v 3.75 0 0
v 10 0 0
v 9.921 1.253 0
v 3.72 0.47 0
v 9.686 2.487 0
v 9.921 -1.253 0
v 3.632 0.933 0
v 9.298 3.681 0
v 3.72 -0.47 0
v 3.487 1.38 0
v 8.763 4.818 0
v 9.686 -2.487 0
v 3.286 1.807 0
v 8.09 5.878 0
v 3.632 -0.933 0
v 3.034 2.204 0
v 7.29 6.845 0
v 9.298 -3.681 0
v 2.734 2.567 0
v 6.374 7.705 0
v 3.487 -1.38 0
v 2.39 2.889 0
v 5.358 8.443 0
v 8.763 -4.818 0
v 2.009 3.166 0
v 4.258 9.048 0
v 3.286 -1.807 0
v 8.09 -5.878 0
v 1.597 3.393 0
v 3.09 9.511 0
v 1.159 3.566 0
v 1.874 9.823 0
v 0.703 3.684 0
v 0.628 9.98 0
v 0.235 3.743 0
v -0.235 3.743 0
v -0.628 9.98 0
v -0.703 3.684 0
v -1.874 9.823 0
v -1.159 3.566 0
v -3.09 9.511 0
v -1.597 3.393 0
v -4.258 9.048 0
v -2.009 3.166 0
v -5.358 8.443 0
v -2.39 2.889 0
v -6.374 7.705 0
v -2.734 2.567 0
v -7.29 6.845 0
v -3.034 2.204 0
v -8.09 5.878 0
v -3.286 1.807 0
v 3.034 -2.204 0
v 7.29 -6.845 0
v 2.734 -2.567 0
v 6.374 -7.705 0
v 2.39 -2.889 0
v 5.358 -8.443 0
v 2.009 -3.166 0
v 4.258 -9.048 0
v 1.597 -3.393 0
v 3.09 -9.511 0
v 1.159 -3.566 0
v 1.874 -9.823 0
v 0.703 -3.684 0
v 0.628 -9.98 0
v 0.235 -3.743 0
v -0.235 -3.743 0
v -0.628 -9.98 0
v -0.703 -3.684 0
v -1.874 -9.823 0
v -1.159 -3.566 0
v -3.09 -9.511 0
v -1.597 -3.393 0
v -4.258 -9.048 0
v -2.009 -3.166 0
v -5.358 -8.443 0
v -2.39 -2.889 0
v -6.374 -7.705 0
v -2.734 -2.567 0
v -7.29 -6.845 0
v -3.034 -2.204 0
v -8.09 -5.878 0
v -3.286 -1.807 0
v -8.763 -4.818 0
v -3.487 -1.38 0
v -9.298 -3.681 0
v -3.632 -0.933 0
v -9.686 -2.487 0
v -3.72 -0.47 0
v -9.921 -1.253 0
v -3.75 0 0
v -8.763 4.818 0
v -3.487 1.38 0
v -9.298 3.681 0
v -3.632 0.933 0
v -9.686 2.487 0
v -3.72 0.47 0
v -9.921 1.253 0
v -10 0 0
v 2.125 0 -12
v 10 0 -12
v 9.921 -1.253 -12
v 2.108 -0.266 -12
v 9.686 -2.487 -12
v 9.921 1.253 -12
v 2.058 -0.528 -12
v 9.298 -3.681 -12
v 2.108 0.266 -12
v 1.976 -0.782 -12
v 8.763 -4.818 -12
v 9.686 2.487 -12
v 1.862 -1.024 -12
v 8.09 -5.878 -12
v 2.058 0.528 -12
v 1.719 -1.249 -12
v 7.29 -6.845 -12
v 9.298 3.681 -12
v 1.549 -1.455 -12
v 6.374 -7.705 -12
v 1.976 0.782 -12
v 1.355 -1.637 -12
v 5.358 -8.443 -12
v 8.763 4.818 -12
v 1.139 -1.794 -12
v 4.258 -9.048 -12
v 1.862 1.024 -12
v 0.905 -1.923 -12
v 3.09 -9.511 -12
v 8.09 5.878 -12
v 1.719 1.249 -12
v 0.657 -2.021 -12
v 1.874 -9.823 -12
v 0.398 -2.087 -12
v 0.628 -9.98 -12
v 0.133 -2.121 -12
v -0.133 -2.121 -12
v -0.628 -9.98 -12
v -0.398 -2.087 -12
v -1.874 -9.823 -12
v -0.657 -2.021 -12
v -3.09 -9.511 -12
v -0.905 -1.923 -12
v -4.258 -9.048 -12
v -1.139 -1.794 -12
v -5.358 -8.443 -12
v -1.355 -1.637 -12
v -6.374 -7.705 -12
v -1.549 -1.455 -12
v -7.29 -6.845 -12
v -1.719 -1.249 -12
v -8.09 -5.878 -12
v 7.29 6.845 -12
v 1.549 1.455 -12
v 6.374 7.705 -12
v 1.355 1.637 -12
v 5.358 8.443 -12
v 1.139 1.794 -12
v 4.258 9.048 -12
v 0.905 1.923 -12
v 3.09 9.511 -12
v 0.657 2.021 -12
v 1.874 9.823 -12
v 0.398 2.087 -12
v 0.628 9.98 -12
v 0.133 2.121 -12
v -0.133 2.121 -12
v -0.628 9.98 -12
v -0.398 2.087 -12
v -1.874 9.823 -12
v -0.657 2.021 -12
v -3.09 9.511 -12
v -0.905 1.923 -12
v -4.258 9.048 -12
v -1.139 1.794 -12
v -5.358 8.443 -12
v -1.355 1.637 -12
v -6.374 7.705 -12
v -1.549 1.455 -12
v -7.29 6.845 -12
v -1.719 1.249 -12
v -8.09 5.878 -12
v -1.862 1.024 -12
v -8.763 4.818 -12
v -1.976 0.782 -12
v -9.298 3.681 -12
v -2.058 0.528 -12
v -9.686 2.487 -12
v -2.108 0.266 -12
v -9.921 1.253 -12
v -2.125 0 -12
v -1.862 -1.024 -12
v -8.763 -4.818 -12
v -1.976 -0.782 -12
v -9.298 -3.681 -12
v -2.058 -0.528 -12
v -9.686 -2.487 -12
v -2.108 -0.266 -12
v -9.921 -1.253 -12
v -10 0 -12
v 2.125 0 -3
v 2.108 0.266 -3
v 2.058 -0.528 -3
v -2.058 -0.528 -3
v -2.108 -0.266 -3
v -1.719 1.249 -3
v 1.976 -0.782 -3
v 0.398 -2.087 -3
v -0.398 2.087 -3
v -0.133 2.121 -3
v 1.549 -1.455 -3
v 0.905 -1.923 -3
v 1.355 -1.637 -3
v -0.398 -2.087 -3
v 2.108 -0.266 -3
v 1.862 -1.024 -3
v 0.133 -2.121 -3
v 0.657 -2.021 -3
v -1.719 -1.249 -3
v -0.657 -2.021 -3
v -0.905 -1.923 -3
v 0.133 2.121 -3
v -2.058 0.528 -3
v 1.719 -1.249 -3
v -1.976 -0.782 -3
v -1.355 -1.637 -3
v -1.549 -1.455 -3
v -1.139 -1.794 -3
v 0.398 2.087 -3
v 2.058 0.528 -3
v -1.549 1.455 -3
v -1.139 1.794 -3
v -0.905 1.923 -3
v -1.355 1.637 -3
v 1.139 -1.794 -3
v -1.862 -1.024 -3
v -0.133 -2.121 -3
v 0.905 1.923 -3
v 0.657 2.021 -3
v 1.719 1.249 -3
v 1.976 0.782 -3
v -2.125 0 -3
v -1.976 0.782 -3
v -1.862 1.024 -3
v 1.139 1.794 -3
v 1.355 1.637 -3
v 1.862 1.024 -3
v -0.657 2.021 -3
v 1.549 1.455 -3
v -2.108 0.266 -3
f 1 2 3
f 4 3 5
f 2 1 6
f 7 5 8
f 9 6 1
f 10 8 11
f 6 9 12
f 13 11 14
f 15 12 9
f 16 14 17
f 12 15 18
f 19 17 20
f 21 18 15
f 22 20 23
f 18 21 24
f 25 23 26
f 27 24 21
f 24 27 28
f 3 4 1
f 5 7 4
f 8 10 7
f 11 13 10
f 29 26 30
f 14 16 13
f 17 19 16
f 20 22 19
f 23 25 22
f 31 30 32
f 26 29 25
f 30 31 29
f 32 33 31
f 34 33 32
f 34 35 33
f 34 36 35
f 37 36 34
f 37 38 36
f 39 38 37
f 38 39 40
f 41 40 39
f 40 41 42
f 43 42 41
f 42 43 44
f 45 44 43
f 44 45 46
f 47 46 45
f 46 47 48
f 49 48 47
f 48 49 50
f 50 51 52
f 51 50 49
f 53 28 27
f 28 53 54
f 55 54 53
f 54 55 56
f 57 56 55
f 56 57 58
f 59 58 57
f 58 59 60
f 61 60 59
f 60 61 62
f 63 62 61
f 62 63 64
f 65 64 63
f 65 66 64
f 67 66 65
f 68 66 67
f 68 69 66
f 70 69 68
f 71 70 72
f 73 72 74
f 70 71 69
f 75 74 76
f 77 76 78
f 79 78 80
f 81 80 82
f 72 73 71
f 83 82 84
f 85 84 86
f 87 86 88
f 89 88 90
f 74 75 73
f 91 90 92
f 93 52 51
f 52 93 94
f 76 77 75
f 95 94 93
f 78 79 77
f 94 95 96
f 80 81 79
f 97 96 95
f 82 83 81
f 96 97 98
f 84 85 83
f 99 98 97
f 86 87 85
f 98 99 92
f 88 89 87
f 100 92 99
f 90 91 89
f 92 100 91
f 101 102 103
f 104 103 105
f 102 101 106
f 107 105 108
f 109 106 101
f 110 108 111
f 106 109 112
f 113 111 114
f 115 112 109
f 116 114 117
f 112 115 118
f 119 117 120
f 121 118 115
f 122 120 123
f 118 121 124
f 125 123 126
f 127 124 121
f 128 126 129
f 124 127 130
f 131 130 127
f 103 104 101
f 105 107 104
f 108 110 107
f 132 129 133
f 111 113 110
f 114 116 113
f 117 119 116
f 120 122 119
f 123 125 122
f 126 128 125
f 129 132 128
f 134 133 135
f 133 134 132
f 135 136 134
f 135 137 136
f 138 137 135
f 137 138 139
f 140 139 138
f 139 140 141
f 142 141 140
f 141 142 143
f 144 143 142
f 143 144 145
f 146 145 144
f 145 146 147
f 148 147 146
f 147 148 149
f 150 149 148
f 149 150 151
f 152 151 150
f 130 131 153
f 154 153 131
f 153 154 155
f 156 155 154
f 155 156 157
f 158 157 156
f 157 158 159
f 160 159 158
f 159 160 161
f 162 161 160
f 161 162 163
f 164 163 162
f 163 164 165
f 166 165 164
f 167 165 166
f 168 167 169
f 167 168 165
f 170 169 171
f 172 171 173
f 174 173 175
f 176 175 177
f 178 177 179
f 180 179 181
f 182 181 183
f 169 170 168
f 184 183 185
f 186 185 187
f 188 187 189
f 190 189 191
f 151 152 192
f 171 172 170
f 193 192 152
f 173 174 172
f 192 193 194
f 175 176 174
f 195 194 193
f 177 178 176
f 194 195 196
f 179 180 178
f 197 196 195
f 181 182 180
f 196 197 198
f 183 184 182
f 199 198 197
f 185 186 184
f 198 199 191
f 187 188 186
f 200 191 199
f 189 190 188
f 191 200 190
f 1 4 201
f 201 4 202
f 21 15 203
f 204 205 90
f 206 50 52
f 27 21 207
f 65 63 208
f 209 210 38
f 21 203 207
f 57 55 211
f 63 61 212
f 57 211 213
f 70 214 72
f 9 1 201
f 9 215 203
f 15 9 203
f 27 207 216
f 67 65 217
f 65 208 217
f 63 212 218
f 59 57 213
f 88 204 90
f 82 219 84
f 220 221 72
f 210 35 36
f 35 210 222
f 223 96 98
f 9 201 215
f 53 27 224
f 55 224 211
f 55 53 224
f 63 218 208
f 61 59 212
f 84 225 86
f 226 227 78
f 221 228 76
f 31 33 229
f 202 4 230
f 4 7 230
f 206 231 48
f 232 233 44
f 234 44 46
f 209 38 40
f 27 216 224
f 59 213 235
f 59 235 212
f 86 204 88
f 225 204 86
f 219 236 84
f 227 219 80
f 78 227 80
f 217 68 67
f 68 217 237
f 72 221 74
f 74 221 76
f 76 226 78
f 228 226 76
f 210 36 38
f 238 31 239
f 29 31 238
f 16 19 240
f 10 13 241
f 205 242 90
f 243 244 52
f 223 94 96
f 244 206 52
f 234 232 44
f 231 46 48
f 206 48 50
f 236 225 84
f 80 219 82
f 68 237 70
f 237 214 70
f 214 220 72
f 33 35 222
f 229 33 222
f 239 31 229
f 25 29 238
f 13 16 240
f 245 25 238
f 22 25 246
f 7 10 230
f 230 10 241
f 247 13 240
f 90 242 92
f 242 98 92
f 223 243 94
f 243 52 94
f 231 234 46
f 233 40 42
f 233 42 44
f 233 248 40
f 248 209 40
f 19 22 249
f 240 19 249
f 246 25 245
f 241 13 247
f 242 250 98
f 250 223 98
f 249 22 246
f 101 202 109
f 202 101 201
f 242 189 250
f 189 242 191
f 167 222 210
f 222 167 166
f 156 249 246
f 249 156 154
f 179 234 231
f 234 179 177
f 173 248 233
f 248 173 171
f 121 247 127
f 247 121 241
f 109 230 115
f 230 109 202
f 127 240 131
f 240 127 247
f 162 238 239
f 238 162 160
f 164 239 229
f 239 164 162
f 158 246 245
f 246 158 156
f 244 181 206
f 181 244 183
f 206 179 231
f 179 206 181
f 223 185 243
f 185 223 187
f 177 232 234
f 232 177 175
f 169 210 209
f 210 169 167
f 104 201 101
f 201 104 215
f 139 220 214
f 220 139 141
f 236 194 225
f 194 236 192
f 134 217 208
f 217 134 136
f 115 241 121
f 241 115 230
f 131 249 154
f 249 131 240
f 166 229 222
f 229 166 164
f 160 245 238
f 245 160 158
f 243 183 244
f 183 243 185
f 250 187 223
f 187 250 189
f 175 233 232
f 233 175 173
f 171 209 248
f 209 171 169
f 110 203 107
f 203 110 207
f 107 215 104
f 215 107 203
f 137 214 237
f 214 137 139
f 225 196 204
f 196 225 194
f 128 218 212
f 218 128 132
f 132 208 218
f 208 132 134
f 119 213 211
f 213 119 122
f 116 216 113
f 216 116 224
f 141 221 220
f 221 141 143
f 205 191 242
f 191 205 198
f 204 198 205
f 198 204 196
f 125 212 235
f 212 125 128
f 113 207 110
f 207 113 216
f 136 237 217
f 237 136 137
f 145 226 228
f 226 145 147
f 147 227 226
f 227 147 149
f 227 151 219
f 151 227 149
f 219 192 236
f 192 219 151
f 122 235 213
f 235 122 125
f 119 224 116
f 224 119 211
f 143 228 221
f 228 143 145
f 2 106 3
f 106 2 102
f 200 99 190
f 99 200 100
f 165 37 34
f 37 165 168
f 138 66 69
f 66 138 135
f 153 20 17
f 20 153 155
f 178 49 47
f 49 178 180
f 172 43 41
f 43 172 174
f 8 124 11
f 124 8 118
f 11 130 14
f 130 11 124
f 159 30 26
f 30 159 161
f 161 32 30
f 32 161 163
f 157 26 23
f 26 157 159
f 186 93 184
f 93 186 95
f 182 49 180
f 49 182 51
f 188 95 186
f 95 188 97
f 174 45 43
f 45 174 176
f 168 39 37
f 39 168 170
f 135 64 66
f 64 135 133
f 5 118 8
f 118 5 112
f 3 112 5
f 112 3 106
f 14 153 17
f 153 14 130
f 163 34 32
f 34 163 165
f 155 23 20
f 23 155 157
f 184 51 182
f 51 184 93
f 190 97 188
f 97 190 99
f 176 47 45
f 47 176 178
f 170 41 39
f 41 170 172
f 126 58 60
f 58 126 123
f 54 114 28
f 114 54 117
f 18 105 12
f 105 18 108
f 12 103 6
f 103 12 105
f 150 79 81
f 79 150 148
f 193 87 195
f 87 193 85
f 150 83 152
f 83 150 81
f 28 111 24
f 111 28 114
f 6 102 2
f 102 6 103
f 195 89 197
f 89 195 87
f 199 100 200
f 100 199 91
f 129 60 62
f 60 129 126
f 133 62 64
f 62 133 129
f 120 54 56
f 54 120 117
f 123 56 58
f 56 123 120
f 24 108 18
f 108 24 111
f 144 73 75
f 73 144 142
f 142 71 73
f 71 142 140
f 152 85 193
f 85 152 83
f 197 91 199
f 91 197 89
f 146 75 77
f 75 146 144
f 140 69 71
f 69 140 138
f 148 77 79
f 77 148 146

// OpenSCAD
$fn = 50;


difference() {
	union() {
		translate(v = [0, 0, -12.0000000000]) {
			cylinder(h = 12, r = 10.0000000000);
		}
		cylinder(h = 0, r = 19.0000000000);
	}
	union() {
		translate(v = [0, 0, 0]) {
			rotate(a = [0, 0, 0]) {
				difference() {
					union() {
						#translate(v = [0, 0, -12.0000000000]) {
							cylinder(h = 12, r = 2.0000000000);
						}
						#translate(v = [0, 0, -3]) {
							cylinder(h = 3, r1 = 2.1250000000, r2 = 3.7500000000);
						}
						#translate(v = [0, 0, -12.0000000000]) {
							cylinder(h = 12, r = 2.1250000000);
						}
						#translate(v = [0, 0, -12.0000000000]) {
							cylinder(h = 12, r = 2.0000000000);
						}
					}
					union();
				}
			}
		}
	}
}
